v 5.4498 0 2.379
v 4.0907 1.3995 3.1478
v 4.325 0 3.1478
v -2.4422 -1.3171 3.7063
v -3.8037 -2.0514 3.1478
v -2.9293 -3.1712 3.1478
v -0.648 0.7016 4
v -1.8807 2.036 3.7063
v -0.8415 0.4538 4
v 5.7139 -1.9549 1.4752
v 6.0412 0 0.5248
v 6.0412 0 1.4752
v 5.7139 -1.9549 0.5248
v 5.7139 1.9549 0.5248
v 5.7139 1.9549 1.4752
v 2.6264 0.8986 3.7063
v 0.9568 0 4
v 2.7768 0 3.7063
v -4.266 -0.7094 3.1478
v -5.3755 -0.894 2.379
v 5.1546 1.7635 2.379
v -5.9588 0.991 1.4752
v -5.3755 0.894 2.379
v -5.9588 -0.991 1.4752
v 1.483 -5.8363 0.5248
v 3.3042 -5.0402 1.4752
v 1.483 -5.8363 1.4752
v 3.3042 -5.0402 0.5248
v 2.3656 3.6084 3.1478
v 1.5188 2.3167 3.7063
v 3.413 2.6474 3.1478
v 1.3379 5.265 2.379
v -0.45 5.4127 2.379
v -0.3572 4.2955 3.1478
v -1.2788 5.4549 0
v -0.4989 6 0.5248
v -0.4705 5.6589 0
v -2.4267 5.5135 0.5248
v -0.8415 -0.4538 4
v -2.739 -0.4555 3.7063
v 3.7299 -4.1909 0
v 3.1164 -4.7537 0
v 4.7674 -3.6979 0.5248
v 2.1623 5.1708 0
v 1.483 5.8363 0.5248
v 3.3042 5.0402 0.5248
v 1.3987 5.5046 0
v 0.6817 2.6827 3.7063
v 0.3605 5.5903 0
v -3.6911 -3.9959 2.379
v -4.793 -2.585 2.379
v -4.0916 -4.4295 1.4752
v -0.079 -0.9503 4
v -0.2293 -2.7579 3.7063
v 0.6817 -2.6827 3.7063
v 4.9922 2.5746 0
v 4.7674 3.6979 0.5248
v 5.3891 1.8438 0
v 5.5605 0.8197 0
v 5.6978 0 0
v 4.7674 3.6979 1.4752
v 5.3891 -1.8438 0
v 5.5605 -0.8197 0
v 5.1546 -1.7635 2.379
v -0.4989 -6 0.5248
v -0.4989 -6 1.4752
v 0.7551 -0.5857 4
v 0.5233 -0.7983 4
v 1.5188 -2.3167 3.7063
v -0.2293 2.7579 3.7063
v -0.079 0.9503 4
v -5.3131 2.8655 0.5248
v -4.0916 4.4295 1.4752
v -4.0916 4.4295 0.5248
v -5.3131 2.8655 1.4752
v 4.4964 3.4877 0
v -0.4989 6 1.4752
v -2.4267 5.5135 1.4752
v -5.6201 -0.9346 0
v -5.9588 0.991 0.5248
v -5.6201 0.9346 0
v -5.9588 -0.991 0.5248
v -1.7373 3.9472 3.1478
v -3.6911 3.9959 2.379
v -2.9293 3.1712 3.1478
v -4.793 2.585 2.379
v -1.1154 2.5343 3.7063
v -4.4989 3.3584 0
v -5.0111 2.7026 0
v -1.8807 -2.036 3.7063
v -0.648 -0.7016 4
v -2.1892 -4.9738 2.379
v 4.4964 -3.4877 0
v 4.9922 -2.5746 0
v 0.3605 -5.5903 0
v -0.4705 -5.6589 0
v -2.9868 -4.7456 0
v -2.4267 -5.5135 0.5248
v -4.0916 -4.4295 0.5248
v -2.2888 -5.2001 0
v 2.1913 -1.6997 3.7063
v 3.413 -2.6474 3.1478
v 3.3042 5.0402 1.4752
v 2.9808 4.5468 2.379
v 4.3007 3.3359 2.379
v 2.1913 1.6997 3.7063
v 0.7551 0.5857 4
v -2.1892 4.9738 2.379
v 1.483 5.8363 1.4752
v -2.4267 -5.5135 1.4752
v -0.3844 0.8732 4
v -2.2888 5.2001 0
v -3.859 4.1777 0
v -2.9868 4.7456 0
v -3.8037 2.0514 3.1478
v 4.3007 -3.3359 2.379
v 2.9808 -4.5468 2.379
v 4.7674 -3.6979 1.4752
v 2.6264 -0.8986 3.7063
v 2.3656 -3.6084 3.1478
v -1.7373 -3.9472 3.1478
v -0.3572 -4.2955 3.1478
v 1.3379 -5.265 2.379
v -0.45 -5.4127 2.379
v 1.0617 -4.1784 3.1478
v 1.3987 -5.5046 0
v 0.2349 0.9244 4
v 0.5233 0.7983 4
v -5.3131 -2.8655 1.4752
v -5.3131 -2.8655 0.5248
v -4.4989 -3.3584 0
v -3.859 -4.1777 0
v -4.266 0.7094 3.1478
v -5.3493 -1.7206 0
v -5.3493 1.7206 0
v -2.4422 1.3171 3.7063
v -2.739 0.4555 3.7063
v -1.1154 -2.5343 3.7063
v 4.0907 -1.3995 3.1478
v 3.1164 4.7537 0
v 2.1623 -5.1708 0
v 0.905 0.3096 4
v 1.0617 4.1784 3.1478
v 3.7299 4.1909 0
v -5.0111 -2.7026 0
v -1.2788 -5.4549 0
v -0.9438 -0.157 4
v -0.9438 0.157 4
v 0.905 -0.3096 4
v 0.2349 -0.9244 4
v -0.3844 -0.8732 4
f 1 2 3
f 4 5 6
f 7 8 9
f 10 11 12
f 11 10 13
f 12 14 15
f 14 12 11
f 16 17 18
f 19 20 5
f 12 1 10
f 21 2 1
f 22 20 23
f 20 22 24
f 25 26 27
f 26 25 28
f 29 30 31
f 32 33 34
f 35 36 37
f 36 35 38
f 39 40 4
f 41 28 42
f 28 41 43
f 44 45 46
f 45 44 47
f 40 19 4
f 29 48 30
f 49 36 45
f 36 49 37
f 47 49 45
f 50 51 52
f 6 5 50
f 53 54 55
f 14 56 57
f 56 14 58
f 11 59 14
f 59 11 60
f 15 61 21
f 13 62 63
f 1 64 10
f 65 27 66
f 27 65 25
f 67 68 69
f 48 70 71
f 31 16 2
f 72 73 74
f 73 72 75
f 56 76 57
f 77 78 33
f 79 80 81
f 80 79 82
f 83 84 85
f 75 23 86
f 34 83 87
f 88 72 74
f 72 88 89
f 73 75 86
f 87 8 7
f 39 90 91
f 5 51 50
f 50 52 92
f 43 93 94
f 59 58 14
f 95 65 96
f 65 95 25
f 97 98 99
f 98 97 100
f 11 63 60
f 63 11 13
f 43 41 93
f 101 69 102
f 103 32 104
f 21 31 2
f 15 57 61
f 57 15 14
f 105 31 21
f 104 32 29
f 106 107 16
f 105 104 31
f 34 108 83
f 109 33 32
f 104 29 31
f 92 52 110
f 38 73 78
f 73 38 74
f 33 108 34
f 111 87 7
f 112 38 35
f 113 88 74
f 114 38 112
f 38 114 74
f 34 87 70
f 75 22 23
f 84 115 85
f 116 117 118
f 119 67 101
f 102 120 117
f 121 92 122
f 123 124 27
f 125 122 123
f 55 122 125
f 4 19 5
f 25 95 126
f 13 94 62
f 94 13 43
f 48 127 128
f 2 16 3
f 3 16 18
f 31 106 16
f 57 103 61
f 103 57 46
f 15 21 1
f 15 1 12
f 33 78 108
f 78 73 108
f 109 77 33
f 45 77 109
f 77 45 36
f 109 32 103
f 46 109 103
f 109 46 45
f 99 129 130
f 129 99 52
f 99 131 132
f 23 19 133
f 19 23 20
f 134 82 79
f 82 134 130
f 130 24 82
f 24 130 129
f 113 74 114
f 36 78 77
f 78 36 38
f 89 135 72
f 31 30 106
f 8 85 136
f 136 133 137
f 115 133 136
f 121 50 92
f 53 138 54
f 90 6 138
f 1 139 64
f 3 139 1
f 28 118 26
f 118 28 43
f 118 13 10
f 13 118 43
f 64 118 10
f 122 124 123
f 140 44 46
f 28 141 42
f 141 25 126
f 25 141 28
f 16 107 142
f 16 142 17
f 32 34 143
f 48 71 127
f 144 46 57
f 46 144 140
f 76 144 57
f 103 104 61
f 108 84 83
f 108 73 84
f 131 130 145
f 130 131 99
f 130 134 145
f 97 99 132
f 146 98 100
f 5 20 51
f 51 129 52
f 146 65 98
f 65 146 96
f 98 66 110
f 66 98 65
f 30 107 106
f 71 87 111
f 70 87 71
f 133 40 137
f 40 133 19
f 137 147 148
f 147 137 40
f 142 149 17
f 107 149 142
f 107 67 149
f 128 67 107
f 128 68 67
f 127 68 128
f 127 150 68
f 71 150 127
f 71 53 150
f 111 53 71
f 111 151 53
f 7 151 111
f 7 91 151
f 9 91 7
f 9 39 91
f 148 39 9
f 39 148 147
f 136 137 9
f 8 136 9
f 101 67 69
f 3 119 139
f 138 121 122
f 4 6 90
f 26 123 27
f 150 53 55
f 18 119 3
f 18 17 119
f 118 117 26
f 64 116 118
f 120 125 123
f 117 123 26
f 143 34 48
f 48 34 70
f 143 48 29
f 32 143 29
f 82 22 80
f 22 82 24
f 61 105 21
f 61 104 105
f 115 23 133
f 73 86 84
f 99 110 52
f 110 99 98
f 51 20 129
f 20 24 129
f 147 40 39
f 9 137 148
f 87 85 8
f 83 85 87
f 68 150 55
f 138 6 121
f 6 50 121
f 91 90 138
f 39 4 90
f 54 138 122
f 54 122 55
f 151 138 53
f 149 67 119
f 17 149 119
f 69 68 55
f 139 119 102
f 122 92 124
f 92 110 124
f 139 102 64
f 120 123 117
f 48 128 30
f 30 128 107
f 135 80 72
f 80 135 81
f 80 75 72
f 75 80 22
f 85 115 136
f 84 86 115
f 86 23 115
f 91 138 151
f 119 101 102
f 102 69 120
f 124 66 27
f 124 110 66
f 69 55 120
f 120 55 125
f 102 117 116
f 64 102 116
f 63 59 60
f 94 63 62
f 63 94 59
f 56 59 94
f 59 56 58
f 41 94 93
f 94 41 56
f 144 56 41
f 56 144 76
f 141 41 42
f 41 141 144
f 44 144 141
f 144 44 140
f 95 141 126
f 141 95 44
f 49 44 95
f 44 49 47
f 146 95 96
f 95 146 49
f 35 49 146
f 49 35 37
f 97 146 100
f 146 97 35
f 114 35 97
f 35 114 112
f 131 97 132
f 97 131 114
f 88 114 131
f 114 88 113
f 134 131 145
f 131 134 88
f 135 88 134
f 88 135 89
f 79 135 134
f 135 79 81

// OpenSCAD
$stoneHeight=4;
$stoneDiameter=12;

module stoneSphere() {
resize([$stoneDiameter, $stoneDiameter, $stoneHeight*0.75*2])
sphere(d=$stoneDiameter);
}

difference() {
translate([0, 0, $stoneHeight*0.25])
stoneSphere();
translate([0, 0, -$stoneHeight*0.75])
cylinder(d=$stoneDiameter, h=$stoneHeight*0.75);
}
